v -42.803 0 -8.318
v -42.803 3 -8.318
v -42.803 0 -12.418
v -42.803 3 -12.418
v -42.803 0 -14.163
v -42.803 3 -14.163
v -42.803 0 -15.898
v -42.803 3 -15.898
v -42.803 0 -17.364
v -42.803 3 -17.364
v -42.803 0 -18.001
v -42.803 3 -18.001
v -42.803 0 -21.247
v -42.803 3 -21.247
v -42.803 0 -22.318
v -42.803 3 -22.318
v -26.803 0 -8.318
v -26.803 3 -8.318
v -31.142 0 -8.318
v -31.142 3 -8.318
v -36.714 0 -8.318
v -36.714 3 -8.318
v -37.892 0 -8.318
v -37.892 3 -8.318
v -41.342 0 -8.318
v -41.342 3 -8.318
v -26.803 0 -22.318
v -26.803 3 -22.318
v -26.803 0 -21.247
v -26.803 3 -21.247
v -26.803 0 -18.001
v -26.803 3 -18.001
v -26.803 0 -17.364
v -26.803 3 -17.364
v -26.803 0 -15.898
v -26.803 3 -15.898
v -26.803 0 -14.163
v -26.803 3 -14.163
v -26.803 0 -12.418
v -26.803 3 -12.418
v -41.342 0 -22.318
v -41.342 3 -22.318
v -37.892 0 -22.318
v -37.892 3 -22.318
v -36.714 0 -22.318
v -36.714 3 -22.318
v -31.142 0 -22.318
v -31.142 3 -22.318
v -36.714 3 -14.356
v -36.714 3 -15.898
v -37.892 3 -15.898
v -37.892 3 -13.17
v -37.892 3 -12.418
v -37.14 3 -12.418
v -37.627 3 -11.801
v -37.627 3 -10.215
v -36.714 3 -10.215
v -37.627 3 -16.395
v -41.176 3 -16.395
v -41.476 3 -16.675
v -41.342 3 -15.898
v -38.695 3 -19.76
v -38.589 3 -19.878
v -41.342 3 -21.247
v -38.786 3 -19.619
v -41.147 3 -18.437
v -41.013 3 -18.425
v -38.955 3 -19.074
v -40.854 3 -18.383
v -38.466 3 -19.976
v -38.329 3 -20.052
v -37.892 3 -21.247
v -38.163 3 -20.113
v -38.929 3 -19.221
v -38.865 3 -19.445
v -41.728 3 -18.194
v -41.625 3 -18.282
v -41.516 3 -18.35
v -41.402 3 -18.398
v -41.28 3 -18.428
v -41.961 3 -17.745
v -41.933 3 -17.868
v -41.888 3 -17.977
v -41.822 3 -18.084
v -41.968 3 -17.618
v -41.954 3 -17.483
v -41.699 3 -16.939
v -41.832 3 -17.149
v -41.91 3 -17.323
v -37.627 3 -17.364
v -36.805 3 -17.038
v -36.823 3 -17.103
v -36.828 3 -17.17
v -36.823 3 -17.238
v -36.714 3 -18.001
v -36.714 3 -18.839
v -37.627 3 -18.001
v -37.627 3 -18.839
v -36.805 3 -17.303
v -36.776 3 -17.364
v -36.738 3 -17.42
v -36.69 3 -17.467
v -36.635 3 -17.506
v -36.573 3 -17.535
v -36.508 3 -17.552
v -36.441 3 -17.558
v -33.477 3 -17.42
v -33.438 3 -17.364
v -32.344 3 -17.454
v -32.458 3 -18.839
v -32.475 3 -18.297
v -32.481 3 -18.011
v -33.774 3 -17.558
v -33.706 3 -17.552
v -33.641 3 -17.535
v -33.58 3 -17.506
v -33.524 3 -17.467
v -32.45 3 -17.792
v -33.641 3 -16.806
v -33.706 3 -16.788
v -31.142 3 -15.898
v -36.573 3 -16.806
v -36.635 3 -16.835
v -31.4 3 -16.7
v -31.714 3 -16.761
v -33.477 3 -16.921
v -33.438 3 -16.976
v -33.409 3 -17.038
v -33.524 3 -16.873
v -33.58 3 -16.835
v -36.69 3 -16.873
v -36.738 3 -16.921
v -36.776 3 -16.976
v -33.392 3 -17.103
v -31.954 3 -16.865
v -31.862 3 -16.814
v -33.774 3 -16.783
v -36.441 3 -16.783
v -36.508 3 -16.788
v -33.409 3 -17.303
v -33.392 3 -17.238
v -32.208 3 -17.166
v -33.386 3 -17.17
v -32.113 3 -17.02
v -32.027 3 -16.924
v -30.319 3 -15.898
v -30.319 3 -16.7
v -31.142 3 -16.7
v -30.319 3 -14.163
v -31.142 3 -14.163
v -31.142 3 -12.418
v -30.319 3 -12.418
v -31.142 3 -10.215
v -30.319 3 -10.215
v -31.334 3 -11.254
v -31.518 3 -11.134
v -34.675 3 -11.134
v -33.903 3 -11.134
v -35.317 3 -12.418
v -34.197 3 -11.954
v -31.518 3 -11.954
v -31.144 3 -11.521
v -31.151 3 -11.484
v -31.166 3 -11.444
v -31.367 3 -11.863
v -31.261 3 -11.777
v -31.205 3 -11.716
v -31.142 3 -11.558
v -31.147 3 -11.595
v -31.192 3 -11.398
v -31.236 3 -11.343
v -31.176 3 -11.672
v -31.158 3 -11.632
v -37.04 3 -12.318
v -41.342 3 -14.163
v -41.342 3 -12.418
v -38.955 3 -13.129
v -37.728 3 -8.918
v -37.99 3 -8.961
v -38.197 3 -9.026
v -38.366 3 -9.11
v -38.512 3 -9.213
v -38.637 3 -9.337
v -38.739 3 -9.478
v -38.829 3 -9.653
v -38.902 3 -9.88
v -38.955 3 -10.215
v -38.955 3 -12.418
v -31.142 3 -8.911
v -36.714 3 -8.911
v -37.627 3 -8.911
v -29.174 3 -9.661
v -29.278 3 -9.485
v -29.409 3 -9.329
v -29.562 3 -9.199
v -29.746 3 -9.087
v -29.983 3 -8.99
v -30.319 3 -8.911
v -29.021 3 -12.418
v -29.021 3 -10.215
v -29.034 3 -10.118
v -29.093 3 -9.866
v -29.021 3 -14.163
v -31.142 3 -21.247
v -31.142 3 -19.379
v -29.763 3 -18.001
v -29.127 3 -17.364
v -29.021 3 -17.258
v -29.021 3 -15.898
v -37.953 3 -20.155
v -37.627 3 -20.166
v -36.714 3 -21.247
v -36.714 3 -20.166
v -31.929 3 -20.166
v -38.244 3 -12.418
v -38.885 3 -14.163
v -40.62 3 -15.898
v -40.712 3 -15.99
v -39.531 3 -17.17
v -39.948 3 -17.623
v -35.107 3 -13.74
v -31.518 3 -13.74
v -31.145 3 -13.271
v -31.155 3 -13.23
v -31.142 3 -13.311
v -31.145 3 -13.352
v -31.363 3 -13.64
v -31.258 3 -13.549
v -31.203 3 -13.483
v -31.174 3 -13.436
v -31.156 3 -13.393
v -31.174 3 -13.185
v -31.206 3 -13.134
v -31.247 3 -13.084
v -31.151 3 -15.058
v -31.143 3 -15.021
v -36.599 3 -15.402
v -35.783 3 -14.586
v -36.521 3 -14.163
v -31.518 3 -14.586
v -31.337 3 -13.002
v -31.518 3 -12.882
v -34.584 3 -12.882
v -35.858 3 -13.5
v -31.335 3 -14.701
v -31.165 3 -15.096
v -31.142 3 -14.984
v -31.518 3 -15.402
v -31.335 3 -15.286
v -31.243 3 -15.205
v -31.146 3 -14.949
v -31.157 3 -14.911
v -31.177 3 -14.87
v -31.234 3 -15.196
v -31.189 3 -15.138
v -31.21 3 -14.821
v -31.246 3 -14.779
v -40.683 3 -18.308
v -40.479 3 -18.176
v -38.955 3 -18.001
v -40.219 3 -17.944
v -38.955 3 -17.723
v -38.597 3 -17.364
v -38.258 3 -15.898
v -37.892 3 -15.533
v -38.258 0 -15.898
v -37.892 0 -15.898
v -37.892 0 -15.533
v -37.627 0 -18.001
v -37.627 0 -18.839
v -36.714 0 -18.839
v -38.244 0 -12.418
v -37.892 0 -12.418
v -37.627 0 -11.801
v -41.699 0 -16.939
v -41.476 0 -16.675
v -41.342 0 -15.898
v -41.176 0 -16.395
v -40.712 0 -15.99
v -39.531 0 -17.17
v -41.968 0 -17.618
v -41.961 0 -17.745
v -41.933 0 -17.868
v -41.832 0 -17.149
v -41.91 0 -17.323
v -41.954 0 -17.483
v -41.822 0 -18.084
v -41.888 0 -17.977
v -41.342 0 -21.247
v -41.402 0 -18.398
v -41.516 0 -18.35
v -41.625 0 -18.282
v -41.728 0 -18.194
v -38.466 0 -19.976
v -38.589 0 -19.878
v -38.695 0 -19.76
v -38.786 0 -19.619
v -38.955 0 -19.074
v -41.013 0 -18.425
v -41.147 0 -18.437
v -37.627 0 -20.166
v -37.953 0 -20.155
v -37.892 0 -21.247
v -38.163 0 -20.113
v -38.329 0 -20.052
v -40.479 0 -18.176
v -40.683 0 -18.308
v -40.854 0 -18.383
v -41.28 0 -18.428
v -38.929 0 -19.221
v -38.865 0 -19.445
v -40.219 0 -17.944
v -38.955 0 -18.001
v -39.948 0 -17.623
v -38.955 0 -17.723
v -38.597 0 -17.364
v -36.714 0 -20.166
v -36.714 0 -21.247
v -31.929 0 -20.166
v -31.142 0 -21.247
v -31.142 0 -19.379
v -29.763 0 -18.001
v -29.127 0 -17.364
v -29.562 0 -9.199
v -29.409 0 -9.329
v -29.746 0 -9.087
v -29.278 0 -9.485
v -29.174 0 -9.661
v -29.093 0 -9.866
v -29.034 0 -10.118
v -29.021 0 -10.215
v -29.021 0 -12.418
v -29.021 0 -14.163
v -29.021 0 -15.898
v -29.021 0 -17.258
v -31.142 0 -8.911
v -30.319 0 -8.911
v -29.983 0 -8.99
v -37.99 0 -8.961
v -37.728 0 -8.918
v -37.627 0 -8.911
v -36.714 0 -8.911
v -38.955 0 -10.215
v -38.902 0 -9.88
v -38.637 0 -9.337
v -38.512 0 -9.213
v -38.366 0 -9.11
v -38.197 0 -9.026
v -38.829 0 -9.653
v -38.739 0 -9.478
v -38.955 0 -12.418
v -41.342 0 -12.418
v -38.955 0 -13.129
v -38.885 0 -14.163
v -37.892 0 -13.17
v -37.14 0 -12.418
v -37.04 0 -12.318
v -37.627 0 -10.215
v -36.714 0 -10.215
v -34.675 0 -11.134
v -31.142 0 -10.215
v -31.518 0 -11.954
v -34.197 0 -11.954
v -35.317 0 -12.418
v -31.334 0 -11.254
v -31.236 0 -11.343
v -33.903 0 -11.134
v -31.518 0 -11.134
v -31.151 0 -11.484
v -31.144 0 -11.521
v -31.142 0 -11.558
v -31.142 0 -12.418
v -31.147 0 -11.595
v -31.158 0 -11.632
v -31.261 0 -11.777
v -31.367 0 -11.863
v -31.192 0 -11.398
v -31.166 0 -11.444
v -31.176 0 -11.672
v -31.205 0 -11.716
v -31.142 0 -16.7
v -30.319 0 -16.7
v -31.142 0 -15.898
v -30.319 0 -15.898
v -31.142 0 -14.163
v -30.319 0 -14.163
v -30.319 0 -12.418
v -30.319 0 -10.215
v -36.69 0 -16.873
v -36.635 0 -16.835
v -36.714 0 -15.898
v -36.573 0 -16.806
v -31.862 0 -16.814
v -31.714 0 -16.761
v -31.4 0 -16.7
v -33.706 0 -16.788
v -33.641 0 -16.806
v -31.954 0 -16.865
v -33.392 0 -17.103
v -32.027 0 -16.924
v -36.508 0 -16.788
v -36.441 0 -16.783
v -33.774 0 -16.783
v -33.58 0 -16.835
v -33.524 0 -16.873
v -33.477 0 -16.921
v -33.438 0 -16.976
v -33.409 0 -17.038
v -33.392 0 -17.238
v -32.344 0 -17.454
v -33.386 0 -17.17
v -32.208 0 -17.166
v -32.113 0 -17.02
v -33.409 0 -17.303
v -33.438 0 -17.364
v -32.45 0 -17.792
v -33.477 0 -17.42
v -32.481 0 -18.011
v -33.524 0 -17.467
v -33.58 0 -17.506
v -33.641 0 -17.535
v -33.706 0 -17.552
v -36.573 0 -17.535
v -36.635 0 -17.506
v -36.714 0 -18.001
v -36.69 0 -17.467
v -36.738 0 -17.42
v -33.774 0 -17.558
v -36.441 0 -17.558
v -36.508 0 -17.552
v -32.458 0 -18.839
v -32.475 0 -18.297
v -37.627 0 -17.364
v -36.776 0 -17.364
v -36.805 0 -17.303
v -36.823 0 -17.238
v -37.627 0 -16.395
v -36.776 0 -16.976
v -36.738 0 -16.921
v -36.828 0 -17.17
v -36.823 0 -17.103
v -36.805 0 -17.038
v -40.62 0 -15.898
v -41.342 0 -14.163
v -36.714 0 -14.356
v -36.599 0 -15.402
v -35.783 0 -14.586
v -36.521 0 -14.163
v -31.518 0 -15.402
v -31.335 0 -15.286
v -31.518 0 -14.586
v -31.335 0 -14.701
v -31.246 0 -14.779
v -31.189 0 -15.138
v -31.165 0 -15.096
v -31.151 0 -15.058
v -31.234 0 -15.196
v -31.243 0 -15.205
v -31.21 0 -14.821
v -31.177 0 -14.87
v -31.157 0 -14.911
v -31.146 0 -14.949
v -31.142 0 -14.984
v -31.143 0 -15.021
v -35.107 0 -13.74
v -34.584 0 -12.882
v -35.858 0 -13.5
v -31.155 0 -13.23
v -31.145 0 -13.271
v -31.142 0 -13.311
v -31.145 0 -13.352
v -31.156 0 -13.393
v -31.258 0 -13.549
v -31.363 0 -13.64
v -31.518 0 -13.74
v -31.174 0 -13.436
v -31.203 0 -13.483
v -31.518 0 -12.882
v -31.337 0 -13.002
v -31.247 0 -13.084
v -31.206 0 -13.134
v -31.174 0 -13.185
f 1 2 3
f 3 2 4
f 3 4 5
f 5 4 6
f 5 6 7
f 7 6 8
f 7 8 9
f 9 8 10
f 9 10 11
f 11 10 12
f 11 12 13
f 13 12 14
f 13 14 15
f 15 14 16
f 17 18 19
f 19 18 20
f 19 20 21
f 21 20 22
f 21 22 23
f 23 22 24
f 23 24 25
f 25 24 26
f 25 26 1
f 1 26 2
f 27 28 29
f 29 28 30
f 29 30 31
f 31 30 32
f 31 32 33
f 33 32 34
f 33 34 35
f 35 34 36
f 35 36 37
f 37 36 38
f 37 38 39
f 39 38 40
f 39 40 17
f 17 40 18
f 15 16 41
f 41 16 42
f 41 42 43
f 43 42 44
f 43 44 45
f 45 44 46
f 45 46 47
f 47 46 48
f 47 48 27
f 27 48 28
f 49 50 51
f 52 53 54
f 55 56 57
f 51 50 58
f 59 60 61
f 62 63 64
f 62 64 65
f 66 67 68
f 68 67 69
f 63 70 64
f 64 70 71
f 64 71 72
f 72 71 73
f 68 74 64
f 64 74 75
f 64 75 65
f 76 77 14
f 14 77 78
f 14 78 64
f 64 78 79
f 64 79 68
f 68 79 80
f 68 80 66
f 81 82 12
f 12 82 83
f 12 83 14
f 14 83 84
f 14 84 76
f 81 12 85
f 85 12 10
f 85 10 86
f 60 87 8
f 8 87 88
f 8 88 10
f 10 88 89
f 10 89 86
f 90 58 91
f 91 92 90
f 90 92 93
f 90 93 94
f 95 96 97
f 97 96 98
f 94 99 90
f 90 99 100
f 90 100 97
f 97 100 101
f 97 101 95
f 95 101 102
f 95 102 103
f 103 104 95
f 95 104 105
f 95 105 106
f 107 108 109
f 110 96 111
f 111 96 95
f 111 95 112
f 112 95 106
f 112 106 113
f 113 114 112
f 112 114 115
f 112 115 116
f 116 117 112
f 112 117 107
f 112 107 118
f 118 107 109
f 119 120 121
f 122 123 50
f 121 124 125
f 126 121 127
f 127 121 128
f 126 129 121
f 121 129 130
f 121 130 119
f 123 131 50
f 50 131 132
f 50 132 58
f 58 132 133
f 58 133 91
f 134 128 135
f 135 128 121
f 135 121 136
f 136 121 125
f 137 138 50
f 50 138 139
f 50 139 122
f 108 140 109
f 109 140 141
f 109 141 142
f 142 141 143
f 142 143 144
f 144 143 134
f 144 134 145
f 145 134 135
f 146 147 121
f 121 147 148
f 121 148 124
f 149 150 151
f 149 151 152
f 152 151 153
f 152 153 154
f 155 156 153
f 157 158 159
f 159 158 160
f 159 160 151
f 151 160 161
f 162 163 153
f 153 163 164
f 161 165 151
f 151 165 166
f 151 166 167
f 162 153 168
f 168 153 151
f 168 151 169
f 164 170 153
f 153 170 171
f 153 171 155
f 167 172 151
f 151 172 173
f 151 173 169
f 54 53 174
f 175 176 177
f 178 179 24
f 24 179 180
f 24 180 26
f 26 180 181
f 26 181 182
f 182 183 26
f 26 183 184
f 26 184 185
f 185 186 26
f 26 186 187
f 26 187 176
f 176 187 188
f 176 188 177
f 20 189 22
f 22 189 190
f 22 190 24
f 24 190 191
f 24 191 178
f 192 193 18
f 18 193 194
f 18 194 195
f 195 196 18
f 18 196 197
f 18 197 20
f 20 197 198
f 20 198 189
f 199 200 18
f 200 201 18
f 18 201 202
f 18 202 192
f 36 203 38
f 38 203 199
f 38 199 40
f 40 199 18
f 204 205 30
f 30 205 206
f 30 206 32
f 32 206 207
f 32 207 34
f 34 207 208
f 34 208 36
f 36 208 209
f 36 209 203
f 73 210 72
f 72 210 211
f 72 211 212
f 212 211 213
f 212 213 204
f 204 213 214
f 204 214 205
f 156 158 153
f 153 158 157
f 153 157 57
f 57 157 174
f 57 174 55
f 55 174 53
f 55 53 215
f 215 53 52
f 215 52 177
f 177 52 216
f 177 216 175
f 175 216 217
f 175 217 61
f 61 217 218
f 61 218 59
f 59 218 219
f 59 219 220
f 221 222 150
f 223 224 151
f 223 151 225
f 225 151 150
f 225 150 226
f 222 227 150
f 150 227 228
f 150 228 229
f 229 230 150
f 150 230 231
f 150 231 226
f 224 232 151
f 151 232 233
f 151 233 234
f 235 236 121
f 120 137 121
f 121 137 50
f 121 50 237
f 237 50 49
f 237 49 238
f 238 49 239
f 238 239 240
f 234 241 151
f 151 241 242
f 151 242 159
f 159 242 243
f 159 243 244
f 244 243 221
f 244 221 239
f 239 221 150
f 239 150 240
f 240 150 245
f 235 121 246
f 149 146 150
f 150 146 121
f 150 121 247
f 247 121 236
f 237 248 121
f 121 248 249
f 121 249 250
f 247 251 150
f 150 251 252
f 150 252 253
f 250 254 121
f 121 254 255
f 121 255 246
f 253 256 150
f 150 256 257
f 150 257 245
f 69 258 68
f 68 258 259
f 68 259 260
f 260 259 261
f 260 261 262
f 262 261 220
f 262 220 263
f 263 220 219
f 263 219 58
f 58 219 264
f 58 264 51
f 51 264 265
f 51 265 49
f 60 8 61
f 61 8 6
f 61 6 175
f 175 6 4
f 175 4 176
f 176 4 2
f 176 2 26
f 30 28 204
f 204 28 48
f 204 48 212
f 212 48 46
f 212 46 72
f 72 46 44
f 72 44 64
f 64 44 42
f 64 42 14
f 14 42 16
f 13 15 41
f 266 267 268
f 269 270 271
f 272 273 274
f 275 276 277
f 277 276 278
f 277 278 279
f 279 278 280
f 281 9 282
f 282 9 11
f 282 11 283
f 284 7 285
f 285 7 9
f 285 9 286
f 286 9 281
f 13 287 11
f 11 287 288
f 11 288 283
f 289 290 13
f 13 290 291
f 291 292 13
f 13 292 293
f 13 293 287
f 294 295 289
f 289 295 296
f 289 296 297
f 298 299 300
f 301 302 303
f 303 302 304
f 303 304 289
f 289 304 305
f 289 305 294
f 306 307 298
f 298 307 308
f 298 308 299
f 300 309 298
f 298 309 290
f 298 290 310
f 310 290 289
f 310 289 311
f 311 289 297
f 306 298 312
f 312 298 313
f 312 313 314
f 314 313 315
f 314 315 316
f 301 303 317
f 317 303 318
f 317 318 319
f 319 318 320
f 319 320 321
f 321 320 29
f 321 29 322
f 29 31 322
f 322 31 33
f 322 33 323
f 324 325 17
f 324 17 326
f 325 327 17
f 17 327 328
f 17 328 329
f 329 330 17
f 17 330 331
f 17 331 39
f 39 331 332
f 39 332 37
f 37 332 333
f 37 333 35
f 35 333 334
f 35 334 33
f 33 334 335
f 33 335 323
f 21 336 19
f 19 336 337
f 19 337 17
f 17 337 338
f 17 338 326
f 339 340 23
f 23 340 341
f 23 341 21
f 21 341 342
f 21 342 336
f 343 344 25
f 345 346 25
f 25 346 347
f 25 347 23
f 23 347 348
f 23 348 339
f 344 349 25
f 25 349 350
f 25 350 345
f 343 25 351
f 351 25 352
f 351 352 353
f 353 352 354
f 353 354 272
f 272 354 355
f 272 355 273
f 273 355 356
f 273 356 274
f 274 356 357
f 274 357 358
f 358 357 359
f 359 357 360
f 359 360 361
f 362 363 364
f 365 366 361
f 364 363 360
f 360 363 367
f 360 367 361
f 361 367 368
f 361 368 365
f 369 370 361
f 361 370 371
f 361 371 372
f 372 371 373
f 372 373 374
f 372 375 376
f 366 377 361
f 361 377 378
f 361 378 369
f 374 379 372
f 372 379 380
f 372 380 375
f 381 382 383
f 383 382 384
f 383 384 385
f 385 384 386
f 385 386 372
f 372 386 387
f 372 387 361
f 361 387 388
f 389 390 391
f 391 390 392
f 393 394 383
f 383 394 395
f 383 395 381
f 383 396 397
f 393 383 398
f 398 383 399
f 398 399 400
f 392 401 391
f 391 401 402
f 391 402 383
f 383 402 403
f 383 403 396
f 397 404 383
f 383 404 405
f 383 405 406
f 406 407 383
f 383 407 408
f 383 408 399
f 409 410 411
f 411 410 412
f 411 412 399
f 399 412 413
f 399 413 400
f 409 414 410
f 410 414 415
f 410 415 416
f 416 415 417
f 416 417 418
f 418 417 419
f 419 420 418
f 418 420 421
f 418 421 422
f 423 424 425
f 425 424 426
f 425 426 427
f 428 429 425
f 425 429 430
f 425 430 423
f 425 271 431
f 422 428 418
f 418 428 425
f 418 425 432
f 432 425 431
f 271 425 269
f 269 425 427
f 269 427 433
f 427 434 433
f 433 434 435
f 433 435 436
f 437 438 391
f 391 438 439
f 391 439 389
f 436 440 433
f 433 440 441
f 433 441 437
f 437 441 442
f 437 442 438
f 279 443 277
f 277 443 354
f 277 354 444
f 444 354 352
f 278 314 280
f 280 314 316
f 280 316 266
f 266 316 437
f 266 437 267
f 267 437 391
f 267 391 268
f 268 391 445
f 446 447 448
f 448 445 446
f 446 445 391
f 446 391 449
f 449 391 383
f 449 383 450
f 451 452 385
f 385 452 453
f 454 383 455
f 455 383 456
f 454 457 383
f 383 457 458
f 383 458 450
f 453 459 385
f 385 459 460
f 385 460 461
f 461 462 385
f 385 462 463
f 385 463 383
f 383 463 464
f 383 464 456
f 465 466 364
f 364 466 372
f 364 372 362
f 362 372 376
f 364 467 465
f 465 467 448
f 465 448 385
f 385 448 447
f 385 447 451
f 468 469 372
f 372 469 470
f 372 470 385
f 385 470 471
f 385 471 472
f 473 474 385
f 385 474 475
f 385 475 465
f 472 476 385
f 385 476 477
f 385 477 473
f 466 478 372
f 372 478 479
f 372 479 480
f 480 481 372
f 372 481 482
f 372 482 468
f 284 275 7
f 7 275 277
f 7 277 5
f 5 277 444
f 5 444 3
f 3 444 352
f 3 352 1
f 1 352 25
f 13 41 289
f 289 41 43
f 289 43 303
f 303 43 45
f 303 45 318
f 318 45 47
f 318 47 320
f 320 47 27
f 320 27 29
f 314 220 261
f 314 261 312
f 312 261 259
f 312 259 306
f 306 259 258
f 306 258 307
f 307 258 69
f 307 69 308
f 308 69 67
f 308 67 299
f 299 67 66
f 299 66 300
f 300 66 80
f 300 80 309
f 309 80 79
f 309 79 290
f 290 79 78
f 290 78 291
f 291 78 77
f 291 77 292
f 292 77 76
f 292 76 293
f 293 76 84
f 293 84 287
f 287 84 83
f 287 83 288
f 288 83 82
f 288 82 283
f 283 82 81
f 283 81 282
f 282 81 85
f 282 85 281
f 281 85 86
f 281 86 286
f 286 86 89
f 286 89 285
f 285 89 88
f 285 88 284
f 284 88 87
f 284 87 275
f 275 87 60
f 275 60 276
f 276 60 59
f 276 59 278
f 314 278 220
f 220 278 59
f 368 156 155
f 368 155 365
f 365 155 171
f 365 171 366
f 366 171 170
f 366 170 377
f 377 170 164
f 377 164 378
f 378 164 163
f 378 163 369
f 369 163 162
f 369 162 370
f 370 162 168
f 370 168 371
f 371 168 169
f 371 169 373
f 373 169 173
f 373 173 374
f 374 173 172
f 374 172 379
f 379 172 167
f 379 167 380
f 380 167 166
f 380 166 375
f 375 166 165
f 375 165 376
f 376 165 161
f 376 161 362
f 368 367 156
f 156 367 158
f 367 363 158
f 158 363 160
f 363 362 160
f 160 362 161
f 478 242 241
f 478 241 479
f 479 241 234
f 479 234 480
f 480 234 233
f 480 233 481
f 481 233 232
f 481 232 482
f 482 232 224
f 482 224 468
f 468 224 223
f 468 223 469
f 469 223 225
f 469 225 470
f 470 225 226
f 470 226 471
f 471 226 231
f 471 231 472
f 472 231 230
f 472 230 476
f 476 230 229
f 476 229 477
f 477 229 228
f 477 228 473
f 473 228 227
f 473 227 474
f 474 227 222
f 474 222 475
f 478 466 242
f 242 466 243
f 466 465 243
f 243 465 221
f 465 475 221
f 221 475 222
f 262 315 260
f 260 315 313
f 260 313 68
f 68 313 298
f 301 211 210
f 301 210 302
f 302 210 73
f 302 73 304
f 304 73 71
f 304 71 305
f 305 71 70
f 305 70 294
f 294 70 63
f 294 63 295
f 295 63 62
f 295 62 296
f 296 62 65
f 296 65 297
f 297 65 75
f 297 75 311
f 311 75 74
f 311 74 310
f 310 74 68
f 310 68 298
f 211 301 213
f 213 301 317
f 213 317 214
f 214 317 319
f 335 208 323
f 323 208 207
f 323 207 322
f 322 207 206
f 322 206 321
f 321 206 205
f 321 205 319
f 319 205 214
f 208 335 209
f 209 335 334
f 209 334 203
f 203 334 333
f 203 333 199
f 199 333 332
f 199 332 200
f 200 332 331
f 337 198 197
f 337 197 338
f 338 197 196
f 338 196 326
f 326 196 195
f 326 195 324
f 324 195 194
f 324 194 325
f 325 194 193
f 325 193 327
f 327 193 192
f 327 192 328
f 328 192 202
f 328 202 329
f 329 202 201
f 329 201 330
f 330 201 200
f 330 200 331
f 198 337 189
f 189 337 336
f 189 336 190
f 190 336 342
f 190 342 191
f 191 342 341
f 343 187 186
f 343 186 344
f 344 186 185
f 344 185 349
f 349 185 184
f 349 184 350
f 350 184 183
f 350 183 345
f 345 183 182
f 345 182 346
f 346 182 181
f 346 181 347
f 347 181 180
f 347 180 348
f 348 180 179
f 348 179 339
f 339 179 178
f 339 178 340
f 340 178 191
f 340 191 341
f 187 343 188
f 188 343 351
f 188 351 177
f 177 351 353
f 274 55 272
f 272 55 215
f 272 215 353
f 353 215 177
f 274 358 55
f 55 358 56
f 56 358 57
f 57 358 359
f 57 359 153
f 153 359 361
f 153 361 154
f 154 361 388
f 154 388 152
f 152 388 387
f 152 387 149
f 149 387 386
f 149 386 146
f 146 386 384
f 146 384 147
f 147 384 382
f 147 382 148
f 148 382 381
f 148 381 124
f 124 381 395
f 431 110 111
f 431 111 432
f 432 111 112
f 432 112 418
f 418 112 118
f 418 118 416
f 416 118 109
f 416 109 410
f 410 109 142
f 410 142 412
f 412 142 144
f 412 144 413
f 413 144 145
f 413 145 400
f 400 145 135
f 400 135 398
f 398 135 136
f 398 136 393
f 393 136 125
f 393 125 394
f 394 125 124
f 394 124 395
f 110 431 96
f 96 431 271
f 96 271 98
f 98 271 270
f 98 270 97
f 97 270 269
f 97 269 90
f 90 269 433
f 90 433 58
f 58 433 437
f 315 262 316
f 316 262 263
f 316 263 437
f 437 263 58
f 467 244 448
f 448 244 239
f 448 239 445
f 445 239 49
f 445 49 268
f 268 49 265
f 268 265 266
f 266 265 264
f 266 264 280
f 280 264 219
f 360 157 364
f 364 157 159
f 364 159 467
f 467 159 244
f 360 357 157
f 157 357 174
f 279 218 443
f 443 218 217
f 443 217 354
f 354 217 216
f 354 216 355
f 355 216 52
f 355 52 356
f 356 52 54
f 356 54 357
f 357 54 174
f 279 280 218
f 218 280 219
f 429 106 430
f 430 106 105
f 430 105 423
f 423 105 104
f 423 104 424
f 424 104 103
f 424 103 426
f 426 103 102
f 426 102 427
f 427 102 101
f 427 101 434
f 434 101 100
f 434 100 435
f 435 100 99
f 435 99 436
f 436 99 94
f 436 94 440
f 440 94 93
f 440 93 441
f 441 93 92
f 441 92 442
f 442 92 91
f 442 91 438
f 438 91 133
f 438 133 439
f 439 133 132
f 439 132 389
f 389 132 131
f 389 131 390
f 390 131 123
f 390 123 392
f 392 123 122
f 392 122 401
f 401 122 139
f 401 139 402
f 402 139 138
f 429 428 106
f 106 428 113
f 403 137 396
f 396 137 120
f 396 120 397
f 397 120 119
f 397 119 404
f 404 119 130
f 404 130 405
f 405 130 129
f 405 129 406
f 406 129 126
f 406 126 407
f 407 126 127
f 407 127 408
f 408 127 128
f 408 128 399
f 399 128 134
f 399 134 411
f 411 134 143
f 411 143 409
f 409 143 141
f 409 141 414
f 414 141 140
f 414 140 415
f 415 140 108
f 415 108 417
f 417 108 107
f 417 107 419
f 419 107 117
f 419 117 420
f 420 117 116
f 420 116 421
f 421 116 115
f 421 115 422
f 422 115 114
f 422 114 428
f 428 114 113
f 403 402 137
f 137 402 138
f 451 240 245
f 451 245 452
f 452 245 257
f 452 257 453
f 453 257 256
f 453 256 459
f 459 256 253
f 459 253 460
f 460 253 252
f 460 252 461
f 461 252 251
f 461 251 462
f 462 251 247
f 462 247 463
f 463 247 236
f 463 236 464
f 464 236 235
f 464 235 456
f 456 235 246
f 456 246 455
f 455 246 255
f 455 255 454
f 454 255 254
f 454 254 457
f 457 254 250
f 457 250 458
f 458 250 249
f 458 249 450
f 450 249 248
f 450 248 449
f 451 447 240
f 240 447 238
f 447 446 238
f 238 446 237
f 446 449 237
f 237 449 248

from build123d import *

# Parameters (mm, degrees)
SKETCH2_W           = 16
SKETCH2_H           = 14
BOSS_EXTRUDE1_DEPTH = 3
CUT_EXTRUDE1_DEPTH  = 3


with BuildPart() as part:
    # Sketch2 → Boss-Extrude1 (new body)
    with BuildSketch(Plane(origin=(0, 0, 0), x_dir=(1, 0, 0), z_dir=(0, 1, 0))):
        with Locations((-34.802547771, 15.318471338)):
            Rectangle(SKETCH2_W, SKETCH2_H)
    extrude(amount=BOSS_EXTRUDE1_DEPTH)

    # Sketch4 → Cut-Extrude1 (cut)
    with BuildSketch(Plane(origin=(0, 3, 0), x_dir=(1, 0, 0), z_dir=(0, 1, 0))):
        with BuildLine():
            Line((-41.175596086, 16.394868254), (-39.947814065, 17.622650274))
            add(Edge.make_bspline(
                [(-39.947814065, 17.622650274), (-40.733462487, 18.672629006), (-42.096388691, 18.405416924), (-42.100834752, 17.17324364), (-41.175596086, 16.394868254)],
                knots=[0, 0, 0, 0, 0.504616072, 1, 1, 1, 1], degree=3))
        make_face()
        Polygon((-39.530720652, 17.17030953), (-40.711506231, 15.989523951), (-37.03990928, 12.317927), (-34.675400844, 11.134204143), (-35.857655062, 13.500181218), align=None)
        with BuildLine():
            Line((-38.95501425, 17.722517711), (-37.627364793, 16.394868254))
            Line((-37.627364793, 16.394868254), (-37.627364793, 18.838683184))
            Line((-37.627364793, 18.838683184), (-32.457756286, 18.838683184))
            add(Edge.make_bspline(
                [(-31.400336364, 16.70034512), (-31.826000229, 16.759057378), (-32.15711446, 16.931909426), (-32.563281875, 17.99135722), (-32.457756286, 18.251227672), (-32.457756286, 18.838683184)],
                knots=[0, 0, 0, 0, 0.30144592, 0.621249631, 1, 1, 1, 1], degree=3))
            Line((-31.400336364, 16.70034512), (-30.319418222, 16.70034512))
            Line((-30.319418222, 16.70034512), (-30.319418222, 10.214836266))
            Line((-30.319418222, 10.214836266), (-37.627364793, 10.214836266))
            Line((-37.627364793, 10.214836266), (-37.627364793, 11.800966149))
            Line((-37.627364793, 11.800966149), (-38.95501425, 13.128615607))
            Line((-38.95501425, 13.128615607), (-38.95501425, 10.214836266))
            add(Edge.make_bspline(
                [(-38.95501425, 10.214836266), (-38.855731917, 8.974442118), (-37.627364793, 8.91068503)],
                knots=[0, 0, 0, 1, 1, 1], degree=2))
            Line((-37.627364793, 8.91068503), (-30.319418222, 8.91068503))
            add(Edge.make_bspline(
                [(-30.319418222, 8.91068503), (-29.146746319, 9.095747861), (-29.02114154, 10.214836266)],
                knots=[0, 0, 0, 1, 1, 1], degree=2))
            Line((-29.02114154, 10.214836266), (-29.02114154, 17.258427857))
            Line((-29.02114154, 17.258427857), (-31.929046325, 20.166332642))
            Line((-31.929046325, 20.166332642), (-37.627364793, 20.166332642))
            add(Edge.make_bspline(
                [(-37.627364793, 20.166332642), (-38.792973527, 20.218288166), (-38.95501425, 19.073665389)],
                knots=[0, 0, 0, 1, 1, 1], degree=2))
            Line((-38.95501425, 19.073665389), (-38.95501425, 17.722517711))
        make_face()
        with BuildLine():
            Line((-36.440704658, 17.558030168), (-33.773656633, 17.558030168))
            ThreePointArc((-33.773656633, 17.558030168), (-33.385935995, 17.17030953), (-33.773656633, 16.782588892))
            Line((-33.773656633, 16.782588892), (-36.440704658, 16.782588892))
            ThreePointArc((-36.440704658, 16.782588892), (-36.828425296, 17.17030953), (-36.440704658, 17.558030168))
        make_face()
        with BuildLine():
            Line((-31.517827466, 14.585505277), (-35.782754484, 14.585505277))
            Line((-35.782754484, 14.585505277), (-36.599317646, 15.402068438))
            Line((-36.599317646, 15.402068438), (-31.517827466, 15.402068438))
            add(Edge.make_bspline(
                [(-31.517827466, 14.585505277), (-30.765884411, 14.993786858), (-31.517827466, 15.402068438)],
                knots=[0, 0, 0, 1, 1, 1], degree=2))
        make_face()
        with BuildLine():
            Line((-31.517827466, 13.739569339), (-35.107180646, 13.739569339))
            Line((-35.107180646, 13.739569339), (-34.58434524, 12.881884291))
            Line((-34.58434524, 12.881884291), (-31.517827466, 12.881884291))
            add(Edge.make_bspline(
                [(-31.517827466, 12.881884291), (-30.765884411, 13.310726815), (-31.517827466, 13.739569339)],
                knots=[0, 0, 0, 1, 1, 1], degree=2))
        make_face()
        with BuildLine():
            Line((-31.517827466, 11.953704582), (-34.196624602, 11.953704582))
            Line((-34.196624602, 11.953704582), (-33.902896846, 11.134204143))
            Line((-33.902896846, 11.134204143), (-31.517827466, 11.134204143))
            add(Edge.make_bspline(
                [(-31.517827466, 11.134204143), (-30.765744911, 11.553356024), (-31.517827466, 11.953704582)],
                knots=[0, 0, 0, 1, 1, 1], degree=2))
        make_face()
    extrude(amount=-CUT_EXTRUDE1_DEPTH, mode=Mode.SUBTRACT)


solid = part.part
